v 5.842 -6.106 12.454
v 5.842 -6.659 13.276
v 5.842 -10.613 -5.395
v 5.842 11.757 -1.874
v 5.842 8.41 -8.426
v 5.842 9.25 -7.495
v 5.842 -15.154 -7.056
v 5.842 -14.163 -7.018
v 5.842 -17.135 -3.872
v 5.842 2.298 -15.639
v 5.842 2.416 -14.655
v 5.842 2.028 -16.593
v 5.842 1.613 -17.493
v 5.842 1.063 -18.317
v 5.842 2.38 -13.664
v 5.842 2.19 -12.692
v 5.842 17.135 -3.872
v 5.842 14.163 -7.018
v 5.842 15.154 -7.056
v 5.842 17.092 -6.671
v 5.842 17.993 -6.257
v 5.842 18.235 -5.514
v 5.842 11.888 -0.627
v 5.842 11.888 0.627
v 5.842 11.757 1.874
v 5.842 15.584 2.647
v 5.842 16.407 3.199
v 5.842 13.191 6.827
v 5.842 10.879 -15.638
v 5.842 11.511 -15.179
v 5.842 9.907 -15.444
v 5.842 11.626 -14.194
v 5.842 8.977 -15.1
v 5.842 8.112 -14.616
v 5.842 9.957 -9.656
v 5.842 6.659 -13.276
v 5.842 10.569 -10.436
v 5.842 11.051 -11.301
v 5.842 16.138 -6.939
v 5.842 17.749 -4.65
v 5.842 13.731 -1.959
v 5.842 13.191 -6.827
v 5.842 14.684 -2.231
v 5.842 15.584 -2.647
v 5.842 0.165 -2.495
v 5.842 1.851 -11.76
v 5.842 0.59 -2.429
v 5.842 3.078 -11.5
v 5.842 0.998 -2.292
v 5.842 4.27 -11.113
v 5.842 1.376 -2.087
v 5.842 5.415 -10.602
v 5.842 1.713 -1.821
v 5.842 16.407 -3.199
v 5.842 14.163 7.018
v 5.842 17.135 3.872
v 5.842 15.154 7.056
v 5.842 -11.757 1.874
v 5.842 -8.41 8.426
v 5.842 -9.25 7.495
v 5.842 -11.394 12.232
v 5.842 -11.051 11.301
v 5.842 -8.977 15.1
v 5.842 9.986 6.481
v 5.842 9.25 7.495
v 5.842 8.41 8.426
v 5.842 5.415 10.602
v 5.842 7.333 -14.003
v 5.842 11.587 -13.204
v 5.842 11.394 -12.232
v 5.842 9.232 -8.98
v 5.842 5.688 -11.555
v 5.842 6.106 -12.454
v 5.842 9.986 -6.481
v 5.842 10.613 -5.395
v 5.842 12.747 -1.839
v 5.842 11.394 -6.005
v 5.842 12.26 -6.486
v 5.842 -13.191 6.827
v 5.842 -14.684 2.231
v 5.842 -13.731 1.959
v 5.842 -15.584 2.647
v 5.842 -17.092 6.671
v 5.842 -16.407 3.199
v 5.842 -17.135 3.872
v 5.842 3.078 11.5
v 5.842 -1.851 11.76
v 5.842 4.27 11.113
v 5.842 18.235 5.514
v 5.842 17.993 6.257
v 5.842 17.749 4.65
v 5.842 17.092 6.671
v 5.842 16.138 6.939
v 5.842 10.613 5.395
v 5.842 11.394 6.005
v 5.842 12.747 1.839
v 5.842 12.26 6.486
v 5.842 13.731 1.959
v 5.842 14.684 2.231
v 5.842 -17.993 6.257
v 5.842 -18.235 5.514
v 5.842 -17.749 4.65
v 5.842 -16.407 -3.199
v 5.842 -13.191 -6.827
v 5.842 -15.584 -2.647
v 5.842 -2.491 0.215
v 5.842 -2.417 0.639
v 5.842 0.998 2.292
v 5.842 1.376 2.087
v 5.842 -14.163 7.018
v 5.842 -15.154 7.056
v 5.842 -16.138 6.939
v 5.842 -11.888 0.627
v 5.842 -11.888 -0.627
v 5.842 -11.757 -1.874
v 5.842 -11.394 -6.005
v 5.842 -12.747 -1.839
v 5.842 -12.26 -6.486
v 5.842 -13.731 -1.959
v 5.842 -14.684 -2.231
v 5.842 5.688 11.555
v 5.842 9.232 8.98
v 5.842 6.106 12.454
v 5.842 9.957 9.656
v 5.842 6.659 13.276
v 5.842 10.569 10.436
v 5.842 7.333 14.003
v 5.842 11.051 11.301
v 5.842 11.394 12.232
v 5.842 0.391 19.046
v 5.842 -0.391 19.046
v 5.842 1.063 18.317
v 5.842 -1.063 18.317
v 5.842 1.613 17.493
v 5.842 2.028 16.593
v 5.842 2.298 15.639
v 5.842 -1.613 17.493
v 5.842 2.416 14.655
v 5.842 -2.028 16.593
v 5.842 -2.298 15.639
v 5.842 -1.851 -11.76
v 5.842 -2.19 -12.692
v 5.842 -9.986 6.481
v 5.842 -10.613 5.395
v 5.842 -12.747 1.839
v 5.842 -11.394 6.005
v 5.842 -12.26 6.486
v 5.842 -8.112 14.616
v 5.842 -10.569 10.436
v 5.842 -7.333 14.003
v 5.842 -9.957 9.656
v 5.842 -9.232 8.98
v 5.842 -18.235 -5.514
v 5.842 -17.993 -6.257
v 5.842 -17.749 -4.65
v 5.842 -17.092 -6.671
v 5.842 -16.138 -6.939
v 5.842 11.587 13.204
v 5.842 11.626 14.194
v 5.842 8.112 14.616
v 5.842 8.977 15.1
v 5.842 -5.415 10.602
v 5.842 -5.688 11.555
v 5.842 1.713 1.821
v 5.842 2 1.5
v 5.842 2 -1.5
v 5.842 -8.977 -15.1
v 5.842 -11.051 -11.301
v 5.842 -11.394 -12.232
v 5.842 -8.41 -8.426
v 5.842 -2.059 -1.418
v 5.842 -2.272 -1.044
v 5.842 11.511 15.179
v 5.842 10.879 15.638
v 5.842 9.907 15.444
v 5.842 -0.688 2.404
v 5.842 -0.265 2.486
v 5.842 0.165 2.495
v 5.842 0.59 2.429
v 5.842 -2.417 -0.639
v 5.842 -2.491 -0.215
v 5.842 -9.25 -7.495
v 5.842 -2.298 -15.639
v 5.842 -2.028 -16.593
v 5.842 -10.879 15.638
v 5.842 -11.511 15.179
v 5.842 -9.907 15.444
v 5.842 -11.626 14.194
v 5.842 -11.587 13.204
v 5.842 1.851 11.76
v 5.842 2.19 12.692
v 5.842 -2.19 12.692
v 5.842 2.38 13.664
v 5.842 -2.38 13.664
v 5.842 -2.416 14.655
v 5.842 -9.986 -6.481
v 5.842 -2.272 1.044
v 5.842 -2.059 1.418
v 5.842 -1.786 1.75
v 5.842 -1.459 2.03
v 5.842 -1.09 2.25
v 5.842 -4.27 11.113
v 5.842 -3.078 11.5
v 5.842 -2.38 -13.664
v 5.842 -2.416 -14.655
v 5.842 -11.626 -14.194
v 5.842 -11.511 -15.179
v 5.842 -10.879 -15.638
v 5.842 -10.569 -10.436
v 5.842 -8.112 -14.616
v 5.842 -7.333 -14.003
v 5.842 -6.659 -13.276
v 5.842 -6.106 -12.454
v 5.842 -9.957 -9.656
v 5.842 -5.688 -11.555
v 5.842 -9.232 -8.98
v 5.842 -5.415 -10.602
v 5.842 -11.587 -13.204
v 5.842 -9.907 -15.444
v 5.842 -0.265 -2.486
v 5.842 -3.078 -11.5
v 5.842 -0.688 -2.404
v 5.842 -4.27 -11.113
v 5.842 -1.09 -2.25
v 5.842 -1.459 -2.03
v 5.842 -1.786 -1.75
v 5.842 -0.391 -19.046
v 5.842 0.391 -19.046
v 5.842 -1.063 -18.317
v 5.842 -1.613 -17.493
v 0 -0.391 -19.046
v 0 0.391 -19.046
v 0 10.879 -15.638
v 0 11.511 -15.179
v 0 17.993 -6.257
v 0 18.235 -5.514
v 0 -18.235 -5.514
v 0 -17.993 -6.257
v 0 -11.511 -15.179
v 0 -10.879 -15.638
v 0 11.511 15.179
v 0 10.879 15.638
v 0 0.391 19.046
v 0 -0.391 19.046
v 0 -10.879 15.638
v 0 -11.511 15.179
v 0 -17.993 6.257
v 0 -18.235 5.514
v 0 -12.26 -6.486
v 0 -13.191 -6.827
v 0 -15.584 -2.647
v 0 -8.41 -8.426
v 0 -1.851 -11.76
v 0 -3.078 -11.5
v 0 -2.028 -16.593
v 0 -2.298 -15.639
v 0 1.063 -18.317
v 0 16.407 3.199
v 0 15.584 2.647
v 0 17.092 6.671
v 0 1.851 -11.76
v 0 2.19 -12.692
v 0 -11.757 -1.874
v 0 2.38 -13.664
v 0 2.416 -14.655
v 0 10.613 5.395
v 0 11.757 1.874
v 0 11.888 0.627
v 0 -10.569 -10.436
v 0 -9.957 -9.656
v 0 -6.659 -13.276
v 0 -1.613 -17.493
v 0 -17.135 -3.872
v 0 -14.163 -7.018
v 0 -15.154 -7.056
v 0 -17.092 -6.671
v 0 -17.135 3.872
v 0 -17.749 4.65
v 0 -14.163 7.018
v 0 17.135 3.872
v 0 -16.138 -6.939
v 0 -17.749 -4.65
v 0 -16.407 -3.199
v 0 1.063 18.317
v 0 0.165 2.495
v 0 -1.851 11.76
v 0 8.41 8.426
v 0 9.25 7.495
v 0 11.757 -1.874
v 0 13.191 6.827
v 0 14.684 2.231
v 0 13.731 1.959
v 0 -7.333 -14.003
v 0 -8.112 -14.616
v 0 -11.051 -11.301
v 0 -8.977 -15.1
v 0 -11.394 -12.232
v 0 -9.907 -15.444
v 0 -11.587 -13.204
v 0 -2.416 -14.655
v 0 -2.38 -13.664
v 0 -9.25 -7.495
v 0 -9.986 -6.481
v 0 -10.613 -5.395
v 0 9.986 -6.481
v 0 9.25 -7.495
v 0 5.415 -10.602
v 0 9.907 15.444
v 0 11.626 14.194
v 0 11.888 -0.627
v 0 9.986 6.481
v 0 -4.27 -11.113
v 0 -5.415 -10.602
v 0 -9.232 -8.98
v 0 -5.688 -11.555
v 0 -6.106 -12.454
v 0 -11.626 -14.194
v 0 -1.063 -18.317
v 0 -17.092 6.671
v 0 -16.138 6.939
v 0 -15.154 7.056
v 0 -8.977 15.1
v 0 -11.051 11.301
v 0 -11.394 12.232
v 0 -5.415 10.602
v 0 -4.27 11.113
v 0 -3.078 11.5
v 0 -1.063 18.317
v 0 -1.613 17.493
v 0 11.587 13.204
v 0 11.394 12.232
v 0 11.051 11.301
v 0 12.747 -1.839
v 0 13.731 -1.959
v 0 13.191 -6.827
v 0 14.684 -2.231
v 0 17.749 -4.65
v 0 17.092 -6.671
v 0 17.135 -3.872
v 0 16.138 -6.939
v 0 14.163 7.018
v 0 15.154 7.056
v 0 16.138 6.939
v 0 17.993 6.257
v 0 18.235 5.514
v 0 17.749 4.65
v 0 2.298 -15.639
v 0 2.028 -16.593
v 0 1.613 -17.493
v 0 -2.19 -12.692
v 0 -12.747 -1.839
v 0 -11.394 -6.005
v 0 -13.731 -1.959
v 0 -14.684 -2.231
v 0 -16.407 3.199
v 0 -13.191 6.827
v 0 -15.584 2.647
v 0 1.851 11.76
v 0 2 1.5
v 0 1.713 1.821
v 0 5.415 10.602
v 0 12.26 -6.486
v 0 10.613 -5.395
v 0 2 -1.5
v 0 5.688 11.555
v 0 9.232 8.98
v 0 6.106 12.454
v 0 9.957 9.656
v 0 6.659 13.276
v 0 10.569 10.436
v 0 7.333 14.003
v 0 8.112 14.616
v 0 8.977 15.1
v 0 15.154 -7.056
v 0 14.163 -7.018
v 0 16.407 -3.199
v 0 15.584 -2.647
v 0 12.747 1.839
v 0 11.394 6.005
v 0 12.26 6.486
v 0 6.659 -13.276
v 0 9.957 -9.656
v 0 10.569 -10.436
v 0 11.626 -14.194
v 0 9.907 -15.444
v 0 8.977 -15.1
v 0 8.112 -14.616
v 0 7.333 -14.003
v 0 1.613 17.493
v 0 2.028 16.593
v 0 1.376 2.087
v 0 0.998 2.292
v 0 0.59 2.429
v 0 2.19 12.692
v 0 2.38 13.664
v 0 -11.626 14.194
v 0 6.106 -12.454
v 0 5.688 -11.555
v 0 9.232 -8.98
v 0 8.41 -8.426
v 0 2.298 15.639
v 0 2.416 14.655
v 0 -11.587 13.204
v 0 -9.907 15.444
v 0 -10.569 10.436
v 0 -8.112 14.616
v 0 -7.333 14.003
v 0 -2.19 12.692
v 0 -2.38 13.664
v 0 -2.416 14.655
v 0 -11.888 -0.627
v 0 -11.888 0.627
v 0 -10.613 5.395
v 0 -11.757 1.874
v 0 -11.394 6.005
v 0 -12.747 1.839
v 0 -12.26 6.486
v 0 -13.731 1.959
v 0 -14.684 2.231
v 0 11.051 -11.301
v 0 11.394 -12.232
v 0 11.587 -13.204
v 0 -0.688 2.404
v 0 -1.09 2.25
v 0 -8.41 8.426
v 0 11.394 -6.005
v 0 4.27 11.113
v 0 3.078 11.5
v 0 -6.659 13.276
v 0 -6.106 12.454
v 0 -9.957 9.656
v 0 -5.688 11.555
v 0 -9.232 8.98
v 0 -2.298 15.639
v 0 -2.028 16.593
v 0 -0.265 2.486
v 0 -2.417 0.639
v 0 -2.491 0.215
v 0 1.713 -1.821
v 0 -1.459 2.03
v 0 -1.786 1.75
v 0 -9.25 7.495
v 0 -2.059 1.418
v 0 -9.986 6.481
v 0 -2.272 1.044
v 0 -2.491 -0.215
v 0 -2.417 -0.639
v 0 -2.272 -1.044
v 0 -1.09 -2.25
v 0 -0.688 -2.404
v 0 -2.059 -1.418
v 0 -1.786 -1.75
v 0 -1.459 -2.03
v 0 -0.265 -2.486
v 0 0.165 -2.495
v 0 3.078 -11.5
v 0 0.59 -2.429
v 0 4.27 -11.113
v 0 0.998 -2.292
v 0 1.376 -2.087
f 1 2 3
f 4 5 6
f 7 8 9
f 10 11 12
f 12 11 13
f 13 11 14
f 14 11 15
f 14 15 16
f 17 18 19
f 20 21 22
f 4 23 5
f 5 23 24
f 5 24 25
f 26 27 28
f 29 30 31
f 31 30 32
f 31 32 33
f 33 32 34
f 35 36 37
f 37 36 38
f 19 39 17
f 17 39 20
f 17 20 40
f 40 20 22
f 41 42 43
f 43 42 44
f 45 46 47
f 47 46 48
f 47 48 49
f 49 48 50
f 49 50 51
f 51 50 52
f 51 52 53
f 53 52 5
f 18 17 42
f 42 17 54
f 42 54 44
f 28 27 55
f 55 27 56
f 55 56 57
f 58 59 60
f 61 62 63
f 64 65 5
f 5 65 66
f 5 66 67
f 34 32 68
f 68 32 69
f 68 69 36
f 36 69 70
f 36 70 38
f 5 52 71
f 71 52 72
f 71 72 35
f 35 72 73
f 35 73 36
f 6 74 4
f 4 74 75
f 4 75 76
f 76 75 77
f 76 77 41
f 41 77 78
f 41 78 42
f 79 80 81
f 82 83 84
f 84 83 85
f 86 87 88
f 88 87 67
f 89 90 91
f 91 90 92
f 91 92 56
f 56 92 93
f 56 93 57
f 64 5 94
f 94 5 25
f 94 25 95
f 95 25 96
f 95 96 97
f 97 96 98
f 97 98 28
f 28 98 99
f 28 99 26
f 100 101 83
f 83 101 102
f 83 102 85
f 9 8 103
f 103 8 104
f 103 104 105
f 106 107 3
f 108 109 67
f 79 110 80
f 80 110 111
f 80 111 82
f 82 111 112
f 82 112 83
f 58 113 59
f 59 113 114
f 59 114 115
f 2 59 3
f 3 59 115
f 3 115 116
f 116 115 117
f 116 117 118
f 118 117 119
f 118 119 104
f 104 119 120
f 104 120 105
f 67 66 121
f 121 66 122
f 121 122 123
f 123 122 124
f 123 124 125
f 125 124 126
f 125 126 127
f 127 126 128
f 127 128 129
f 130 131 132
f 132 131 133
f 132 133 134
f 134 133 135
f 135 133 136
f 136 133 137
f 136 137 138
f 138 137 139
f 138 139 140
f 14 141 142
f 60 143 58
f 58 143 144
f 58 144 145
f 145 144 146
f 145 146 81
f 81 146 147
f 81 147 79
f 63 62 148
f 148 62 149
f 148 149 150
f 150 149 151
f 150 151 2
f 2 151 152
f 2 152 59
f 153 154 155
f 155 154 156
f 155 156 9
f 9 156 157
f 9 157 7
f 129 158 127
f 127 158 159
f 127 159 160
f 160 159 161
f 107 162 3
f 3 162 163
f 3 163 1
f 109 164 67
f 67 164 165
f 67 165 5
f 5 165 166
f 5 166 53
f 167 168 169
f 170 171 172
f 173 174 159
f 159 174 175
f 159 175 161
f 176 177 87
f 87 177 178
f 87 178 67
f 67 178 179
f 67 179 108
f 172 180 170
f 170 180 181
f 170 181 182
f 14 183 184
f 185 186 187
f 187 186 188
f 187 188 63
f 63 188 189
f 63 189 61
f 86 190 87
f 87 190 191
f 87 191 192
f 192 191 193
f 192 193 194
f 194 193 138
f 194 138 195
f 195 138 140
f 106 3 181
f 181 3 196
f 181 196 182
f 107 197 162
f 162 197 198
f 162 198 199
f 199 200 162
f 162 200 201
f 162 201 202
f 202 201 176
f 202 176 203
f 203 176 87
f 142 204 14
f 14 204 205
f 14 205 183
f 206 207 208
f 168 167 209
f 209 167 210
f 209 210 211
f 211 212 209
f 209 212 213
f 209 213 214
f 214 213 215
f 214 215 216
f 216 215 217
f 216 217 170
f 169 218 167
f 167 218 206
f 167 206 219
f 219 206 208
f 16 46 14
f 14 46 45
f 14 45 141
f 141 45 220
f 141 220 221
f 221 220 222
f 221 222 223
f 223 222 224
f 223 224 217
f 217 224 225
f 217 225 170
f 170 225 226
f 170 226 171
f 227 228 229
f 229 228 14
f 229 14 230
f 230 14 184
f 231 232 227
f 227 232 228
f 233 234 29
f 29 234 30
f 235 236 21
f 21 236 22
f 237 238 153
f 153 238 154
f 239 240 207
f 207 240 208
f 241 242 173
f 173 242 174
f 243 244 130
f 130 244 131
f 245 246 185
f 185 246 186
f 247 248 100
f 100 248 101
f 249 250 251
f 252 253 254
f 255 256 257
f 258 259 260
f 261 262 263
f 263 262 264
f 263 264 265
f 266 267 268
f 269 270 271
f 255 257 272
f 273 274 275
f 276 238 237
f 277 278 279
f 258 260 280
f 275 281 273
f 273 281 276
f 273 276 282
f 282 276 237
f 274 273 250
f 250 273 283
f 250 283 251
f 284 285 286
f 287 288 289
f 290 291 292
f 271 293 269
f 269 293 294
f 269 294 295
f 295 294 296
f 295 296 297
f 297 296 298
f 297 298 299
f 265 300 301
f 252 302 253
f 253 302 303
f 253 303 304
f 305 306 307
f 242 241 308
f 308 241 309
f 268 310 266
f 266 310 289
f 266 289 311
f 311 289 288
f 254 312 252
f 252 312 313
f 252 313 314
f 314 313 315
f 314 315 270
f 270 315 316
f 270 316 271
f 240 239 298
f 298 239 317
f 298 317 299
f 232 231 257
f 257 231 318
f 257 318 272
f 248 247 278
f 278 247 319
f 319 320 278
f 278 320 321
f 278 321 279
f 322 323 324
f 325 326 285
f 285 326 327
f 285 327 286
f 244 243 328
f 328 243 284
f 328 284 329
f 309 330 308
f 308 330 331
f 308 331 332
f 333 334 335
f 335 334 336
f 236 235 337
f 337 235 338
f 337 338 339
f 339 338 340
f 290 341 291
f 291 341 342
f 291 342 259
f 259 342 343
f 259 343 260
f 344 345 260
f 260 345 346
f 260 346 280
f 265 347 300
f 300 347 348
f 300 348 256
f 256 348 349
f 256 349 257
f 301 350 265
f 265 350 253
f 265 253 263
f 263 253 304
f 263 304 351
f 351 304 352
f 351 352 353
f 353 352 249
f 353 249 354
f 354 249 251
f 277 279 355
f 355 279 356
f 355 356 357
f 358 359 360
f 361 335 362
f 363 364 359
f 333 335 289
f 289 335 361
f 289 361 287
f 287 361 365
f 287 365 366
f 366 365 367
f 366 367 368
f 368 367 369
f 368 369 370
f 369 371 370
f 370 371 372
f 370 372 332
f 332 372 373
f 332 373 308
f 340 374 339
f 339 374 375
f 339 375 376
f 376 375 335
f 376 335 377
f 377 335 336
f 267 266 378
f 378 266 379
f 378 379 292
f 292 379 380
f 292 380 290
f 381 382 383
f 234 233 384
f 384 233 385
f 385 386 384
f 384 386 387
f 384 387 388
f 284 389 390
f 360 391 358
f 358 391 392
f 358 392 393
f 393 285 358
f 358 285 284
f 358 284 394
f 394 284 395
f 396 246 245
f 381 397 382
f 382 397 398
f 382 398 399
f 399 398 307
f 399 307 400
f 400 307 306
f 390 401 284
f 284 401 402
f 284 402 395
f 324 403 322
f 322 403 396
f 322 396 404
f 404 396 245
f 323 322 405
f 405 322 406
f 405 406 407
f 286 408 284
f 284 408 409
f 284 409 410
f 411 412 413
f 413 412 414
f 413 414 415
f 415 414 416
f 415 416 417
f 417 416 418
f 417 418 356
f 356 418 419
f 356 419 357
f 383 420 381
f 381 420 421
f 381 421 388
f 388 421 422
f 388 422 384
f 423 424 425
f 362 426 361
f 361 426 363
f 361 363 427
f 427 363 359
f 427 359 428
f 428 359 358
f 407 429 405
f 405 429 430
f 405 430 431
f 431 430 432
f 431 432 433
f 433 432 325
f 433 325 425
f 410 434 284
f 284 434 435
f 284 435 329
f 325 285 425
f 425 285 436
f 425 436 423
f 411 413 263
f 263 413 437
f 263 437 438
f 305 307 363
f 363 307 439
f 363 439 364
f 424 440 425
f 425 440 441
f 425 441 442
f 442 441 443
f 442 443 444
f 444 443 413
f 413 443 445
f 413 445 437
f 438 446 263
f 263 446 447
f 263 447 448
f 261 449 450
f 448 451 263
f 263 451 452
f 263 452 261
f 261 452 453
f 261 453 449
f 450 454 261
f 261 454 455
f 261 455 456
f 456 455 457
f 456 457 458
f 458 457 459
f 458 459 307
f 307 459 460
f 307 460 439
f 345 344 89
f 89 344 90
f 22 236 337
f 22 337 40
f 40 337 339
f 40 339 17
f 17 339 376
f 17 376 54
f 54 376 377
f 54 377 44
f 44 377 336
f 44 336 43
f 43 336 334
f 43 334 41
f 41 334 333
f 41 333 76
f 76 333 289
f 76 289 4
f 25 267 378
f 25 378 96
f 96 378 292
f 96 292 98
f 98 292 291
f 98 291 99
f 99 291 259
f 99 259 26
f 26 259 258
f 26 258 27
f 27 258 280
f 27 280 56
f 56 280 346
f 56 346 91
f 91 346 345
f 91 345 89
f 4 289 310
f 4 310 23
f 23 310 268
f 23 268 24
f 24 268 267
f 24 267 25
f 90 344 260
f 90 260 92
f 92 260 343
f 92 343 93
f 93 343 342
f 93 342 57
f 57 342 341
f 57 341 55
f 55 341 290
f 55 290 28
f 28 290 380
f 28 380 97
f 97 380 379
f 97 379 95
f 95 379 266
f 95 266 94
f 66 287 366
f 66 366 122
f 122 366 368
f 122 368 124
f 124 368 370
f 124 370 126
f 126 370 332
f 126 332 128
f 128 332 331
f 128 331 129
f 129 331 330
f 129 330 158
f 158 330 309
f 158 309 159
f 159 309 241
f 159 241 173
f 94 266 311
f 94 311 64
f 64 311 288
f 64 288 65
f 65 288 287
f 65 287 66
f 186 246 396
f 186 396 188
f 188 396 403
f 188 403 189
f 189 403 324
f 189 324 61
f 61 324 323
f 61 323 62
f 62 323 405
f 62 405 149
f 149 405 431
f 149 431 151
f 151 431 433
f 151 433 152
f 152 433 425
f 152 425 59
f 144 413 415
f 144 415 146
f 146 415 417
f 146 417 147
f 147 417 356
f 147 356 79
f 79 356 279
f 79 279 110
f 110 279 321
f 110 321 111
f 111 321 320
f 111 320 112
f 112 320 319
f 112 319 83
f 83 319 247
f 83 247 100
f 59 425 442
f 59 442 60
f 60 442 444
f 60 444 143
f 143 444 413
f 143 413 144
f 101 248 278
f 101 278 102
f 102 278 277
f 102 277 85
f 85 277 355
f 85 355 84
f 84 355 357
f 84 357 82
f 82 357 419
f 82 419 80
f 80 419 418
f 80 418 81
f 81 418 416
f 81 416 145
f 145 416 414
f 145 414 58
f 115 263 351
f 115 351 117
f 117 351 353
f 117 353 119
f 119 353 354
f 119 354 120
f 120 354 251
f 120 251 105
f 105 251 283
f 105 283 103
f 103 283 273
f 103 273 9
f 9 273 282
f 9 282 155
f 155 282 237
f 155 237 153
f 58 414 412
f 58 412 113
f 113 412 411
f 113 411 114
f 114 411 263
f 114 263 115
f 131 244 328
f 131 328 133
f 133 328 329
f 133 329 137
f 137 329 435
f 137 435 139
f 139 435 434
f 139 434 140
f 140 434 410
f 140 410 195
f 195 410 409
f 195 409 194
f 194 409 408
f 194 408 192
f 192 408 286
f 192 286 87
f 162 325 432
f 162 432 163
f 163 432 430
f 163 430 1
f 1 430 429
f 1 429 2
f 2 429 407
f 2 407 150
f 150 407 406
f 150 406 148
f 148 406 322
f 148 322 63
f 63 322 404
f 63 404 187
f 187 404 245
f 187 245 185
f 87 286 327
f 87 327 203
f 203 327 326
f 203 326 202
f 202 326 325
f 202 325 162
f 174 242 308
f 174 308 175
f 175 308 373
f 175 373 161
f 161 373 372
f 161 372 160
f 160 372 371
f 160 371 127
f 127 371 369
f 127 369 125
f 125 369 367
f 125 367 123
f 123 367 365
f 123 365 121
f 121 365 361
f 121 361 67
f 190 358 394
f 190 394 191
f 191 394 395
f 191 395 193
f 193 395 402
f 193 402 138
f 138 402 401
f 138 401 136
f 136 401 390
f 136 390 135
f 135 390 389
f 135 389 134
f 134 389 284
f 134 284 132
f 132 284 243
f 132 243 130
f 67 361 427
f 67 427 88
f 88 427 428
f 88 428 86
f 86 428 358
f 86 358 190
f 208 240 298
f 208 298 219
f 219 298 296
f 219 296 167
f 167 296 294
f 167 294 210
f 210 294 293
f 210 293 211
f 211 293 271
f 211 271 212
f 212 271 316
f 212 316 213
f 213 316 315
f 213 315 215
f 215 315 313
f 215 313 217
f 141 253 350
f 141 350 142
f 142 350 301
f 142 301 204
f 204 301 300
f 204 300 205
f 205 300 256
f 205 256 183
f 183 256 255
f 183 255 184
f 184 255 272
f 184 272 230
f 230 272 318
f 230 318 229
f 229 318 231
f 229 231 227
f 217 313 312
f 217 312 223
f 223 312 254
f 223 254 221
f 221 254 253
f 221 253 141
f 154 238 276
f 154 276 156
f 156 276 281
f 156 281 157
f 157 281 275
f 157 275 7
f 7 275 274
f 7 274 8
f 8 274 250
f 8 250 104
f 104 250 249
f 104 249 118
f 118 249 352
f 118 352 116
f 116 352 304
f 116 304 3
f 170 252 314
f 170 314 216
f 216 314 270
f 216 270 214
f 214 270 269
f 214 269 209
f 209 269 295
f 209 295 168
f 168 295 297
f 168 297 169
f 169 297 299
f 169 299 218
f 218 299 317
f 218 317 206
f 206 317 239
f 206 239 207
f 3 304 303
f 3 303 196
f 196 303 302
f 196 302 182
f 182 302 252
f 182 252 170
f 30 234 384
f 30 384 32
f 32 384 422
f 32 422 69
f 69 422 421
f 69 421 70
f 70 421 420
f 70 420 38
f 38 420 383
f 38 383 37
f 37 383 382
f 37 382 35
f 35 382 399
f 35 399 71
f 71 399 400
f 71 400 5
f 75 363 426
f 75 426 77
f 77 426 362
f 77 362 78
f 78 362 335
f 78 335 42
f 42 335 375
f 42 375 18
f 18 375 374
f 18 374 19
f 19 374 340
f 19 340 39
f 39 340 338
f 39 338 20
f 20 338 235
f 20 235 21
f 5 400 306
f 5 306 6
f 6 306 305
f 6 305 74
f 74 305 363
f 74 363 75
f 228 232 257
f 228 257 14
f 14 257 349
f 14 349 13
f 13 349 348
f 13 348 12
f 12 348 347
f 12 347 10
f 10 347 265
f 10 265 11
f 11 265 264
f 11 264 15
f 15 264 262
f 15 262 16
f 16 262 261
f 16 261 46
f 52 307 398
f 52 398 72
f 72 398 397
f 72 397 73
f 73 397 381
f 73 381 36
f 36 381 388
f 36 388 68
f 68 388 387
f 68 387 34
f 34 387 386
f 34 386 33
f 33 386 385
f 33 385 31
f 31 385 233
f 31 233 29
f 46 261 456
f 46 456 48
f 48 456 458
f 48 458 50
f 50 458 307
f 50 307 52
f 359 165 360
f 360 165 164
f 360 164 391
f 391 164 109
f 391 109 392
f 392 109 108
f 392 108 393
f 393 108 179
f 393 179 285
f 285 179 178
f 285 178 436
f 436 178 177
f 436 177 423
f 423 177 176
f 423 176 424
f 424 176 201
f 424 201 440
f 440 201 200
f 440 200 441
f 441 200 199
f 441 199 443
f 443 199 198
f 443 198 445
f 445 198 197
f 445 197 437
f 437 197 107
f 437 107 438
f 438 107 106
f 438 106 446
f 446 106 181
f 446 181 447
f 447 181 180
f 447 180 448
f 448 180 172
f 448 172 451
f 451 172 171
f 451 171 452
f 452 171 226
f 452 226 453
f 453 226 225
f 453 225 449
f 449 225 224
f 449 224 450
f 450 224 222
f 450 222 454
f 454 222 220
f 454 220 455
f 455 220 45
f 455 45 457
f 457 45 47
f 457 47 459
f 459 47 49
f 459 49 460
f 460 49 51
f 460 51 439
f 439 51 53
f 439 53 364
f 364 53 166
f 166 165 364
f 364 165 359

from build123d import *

# Parameters (mm, degrees)
BASPROSKE_W         = 5.842
BASPROSKE_H         = 19.05
TOOTHCUT_DEPTH      = 28.566899789
TEETHCUTS_COUNT     = 10
TEETHCUTS_ANGLE     = 324
BORSKE_R            = 2.38125
BORE_DEPTH          = 50.8000508
SKETCH1_R           = 2.5
CUT_EXTRUDE1_DEPTH  = 5.842
BOSS_EXTRUDE1_DEPTH = 5.842


with BuildPart() as part:
    # BasProSke → Base-Revolve (revolve)
    with BuildSketch(Plane(origin=(0, 0, 0), x_dir=(1, 0, 0), z_dir=(0, 1, 0)), mode=Mode.PRIVATE) as base_revolve_sk:
        with Locations((2.921, 9.525)):
            Rectangle(BASPROSKE_W, BASPROSKE_H)
    revolve(base_revolve_sk.sketch.rotate(Axis((-10, 0, 0), (1, 0, 0)), 180), axis=Axis((-10, 0, 0), (1, 0, 0)))

    # TooCutSke → ToothCut (cut, through all)
    with BuildSketch(Plane(origin=(0, 0, 0), x_dir=(0, 0, -1), z_dir=(1, 0, 0))):
        with BuildLine():
            ThreePointArc((1.873548596, 11.756630659), (0, 11.90498), (-1.873548596, 11.756630659))
            ThreePointArc((-1.873548596, 11.756630659), (-2.656568084, 15.60034376), (-5.548507123, 18.250615164))
            ThreePointArc((-5.548507123, 18.250615164), (0, 19.0754), (5.548507123, 18.250615164))
            ThreePointArc((5.548507123, 18.250615164), (2.656568084, 15.60034376), (1.873548596, 11.756630659))
        make_face()
    toothcut = extrude(amount=TOOTHCUT_DEPTH, mode=Mode.SUBTRACT)

    # TeethCuts: ToothCut ×10 about axis
    teethcuts_axis = Axis((-10, 0, 0), (1, 0, 0))
    for i in range(1, TEETHCUTS_COUNT):
        add(toothcut.rotate(teethcuts_axis, i * TEETHCUTS_ANGLE / (TEETHCUTS_COUNT - 1)), mode=Mode.SUBTRACT)

    # BorSke → Bore (cut, symmetric)
    with BuildSketch(Plane(origin=(0, 0, 0), x_dir=(0, 0, -1), z_dir=(1, 0, 0))):
        with Locations(Location((0, 0, 0), (0, 0, 180))):
            Circle(BORSKE_R)
    extrude(amount=BORE_DEPTH, both=True, mode=Mode.SUBTRACT)

    # Sketch1 → Cut-Extrude1 (cut)
    with BuildSketch(Plane(origin=(5.842, 0, 0), x_dir=(0, 0, -1), z_dir=(1, 0, 0))):
        Circle(SKETCH1_R)
    extrude(amount=-CUT_EXTRUDE1_DEPTH, mode=Mode.SUBTRACT)

    # Sketch2 → Boss-Extrude1 (add)
    with BuildSketch(Plane(origin=(5.842, 0, 0), x_dir=(0, 0, -1), z_dir=(1, 0, 0))):
        with BuildLine():
            Line((-1.5, 2), (1.5, 2))
            ThreePointArc((1.5, 2), (0, 2.5), (-1.5, 2))
        make_face()
    extrude(amount=-BOSS_EXTRUDE1_DEPTH)


solid = part.part
